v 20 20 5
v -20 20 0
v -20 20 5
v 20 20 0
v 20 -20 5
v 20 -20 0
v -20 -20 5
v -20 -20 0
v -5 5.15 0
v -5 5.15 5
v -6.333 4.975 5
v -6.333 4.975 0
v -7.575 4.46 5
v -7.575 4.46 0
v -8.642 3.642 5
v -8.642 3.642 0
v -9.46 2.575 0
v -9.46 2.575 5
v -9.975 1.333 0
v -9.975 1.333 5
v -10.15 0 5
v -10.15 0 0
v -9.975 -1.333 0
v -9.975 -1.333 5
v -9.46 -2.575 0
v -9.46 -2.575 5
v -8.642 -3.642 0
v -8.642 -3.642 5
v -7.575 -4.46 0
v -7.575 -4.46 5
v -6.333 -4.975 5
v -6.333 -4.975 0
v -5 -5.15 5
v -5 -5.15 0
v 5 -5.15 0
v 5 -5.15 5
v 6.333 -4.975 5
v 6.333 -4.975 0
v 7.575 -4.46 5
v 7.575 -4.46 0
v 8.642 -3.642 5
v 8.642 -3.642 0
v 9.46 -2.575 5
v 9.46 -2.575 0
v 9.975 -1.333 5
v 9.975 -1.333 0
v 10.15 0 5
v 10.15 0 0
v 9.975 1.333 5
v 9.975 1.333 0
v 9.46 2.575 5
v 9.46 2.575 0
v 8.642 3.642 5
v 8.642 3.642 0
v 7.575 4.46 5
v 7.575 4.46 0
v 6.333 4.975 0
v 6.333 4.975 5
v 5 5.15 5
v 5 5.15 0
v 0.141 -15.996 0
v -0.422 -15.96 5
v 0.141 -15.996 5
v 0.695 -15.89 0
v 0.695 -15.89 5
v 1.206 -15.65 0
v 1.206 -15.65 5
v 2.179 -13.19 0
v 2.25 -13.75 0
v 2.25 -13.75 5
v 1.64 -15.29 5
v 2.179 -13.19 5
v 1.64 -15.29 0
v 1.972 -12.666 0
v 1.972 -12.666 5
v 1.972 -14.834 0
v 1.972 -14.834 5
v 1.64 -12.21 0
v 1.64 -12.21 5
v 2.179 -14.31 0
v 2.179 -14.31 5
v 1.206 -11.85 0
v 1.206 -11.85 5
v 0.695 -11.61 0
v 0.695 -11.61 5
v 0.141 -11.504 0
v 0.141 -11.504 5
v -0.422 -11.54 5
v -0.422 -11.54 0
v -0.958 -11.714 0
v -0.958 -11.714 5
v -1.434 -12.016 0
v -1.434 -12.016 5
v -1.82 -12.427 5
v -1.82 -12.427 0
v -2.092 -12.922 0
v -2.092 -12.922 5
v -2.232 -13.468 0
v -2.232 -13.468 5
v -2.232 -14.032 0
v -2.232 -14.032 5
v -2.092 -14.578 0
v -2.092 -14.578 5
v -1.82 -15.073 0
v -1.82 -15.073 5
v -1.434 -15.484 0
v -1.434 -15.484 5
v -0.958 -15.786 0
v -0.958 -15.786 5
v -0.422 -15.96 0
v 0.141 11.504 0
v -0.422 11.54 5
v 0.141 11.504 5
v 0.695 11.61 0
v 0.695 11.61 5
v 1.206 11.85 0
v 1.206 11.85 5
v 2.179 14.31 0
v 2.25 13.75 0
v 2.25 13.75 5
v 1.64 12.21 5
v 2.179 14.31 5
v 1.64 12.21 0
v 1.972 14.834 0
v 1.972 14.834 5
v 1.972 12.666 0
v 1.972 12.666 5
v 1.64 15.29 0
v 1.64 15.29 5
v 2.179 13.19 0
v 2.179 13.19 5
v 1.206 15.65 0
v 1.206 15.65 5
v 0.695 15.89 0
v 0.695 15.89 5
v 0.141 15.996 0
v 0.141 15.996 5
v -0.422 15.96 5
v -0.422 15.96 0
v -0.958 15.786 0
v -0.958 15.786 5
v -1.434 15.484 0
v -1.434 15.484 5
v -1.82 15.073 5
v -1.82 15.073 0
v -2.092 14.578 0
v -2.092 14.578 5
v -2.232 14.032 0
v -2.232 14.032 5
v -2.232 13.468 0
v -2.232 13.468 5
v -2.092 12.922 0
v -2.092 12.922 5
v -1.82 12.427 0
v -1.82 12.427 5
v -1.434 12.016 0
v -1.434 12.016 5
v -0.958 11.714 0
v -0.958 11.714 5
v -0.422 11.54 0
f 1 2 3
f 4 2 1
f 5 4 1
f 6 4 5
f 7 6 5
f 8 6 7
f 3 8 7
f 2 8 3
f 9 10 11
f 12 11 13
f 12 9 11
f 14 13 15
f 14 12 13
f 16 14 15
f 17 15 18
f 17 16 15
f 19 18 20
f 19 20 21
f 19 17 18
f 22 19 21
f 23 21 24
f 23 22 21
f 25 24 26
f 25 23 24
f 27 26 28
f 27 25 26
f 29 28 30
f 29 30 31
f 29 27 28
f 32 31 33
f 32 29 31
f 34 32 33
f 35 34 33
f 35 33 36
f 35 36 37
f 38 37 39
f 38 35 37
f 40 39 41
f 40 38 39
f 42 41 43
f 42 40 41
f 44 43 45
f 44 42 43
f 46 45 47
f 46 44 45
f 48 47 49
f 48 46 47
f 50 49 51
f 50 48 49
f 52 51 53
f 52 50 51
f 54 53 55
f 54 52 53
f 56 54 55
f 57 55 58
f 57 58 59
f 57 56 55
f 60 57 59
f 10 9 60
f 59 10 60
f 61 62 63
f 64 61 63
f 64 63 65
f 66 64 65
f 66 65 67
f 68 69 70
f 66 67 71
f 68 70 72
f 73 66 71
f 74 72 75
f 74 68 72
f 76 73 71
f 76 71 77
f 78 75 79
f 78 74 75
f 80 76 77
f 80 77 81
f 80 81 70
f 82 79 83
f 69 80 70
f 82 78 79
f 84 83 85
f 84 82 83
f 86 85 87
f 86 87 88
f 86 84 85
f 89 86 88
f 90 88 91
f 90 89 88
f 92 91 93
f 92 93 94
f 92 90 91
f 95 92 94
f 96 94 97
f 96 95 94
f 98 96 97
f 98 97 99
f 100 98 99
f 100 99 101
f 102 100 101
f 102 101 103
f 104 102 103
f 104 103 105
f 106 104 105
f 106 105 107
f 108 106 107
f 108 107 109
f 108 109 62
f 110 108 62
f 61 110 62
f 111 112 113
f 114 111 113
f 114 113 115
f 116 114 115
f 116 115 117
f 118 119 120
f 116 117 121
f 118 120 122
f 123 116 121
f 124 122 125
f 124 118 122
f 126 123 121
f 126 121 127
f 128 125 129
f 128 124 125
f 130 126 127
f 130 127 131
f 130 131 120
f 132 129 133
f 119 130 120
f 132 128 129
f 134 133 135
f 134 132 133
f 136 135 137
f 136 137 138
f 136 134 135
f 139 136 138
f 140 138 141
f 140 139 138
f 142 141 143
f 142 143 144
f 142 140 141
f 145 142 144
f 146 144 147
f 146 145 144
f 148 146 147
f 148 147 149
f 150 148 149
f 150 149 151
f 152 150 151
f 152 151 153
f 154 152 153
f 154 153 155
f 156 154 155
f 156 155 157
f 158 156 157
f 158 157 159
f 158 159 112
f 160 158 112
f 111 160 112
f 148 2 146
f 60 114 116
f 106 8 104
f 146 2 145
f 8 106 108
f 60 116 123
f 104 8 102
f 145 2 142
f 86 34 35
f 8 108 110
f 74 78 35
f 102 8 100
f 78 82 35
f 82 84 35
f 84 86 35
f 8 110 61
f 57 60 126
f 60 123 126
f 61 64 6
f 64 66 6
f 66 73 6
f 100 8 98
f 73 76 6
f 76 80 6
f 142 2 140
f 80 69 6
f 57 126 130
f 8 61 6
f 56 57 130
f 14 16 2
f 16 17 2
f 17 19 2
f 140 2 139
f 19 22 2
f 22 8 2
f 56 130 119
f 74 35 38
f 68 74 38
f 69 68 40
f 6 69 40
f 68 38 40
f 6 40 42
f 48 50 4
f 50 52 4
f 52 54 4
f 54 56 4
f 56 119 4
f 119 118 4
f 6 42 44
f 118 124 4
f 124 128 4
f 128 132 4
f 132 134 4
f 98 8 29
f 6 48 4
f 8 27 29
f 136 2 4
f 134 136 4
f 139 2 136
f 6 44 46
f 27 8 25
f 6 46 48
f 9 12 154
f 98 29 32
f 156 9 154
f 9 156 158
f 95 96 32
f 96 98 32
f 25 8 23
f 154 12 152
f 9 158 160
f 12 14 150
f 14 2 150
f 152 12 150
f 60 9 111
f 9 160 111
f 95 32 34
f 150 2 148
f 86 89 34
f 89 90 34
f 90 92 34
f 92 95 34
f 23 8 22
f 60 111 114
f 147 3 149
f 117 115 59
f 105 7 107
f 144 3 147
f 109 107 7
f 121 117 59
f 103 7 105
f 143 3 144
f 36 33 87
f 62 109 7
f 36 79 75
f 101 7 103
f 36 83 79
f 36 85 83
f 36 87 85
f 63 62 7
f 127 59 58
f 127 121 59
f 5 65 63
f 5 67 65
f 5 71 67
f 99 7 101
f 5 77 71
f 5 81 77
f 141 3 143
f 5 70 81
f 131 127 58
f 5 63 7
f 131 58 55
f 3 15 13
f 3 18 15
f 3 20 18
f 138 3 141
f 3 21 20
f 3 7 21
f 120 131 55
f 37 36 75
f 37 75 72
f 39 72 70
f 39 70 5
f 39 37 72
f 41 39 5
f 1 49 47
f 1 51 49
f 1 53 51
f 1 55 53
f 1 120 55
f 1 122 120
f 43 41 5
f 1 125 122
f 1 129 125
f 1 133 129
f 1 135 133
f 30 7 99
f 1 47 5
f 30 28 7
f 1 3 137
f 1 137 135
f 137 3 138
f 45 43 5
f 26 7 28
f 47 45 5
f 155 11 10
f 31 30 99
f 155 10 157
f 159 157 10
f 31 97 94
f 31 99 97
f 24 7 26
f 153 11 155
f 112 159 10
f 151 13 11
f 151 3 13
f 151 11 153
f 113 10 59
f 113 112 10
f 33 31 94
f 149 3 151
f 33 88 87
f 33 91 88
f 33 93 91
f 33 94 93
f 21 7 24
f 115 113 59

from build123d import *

# Parameters (mm, degrees)
SKETCH_W  = 40
SKETCH_H  = 40
SKETCH_R  = 2.25
PAD_DEPTH = 5


with BuildPart() as part:
    # Sketch → Pad (new body)
    with BuildSketch(Plane.XY):
        Rectangle(SKETCH_W, SKETCH_H)
        with Locations((0, 13.75)):
            Circle(SKETCH_R, mode=Mode.SUBTRACT)
        with Locations((0, -13.75)):
            Circle(SKETCH_R, mode=Mode.SUBTRACT)
        with BuildLine():
            ThreePointArc((-4.999996, 5.15), (-10.149996, 2e-06), (-5, -5.15))
            Line((-5, -5.15), (5, -5.15))
            ThreePointArc((5, -5.15), (10.149996, 0), (4.999999, 5.15))
            Line((-4.999996, 5.15), (4.999999, 5.15))
        make_face(mode=Mode.SUBTRACT)
    extrude(amount=PAD_DEPTH)


solid = part.part
